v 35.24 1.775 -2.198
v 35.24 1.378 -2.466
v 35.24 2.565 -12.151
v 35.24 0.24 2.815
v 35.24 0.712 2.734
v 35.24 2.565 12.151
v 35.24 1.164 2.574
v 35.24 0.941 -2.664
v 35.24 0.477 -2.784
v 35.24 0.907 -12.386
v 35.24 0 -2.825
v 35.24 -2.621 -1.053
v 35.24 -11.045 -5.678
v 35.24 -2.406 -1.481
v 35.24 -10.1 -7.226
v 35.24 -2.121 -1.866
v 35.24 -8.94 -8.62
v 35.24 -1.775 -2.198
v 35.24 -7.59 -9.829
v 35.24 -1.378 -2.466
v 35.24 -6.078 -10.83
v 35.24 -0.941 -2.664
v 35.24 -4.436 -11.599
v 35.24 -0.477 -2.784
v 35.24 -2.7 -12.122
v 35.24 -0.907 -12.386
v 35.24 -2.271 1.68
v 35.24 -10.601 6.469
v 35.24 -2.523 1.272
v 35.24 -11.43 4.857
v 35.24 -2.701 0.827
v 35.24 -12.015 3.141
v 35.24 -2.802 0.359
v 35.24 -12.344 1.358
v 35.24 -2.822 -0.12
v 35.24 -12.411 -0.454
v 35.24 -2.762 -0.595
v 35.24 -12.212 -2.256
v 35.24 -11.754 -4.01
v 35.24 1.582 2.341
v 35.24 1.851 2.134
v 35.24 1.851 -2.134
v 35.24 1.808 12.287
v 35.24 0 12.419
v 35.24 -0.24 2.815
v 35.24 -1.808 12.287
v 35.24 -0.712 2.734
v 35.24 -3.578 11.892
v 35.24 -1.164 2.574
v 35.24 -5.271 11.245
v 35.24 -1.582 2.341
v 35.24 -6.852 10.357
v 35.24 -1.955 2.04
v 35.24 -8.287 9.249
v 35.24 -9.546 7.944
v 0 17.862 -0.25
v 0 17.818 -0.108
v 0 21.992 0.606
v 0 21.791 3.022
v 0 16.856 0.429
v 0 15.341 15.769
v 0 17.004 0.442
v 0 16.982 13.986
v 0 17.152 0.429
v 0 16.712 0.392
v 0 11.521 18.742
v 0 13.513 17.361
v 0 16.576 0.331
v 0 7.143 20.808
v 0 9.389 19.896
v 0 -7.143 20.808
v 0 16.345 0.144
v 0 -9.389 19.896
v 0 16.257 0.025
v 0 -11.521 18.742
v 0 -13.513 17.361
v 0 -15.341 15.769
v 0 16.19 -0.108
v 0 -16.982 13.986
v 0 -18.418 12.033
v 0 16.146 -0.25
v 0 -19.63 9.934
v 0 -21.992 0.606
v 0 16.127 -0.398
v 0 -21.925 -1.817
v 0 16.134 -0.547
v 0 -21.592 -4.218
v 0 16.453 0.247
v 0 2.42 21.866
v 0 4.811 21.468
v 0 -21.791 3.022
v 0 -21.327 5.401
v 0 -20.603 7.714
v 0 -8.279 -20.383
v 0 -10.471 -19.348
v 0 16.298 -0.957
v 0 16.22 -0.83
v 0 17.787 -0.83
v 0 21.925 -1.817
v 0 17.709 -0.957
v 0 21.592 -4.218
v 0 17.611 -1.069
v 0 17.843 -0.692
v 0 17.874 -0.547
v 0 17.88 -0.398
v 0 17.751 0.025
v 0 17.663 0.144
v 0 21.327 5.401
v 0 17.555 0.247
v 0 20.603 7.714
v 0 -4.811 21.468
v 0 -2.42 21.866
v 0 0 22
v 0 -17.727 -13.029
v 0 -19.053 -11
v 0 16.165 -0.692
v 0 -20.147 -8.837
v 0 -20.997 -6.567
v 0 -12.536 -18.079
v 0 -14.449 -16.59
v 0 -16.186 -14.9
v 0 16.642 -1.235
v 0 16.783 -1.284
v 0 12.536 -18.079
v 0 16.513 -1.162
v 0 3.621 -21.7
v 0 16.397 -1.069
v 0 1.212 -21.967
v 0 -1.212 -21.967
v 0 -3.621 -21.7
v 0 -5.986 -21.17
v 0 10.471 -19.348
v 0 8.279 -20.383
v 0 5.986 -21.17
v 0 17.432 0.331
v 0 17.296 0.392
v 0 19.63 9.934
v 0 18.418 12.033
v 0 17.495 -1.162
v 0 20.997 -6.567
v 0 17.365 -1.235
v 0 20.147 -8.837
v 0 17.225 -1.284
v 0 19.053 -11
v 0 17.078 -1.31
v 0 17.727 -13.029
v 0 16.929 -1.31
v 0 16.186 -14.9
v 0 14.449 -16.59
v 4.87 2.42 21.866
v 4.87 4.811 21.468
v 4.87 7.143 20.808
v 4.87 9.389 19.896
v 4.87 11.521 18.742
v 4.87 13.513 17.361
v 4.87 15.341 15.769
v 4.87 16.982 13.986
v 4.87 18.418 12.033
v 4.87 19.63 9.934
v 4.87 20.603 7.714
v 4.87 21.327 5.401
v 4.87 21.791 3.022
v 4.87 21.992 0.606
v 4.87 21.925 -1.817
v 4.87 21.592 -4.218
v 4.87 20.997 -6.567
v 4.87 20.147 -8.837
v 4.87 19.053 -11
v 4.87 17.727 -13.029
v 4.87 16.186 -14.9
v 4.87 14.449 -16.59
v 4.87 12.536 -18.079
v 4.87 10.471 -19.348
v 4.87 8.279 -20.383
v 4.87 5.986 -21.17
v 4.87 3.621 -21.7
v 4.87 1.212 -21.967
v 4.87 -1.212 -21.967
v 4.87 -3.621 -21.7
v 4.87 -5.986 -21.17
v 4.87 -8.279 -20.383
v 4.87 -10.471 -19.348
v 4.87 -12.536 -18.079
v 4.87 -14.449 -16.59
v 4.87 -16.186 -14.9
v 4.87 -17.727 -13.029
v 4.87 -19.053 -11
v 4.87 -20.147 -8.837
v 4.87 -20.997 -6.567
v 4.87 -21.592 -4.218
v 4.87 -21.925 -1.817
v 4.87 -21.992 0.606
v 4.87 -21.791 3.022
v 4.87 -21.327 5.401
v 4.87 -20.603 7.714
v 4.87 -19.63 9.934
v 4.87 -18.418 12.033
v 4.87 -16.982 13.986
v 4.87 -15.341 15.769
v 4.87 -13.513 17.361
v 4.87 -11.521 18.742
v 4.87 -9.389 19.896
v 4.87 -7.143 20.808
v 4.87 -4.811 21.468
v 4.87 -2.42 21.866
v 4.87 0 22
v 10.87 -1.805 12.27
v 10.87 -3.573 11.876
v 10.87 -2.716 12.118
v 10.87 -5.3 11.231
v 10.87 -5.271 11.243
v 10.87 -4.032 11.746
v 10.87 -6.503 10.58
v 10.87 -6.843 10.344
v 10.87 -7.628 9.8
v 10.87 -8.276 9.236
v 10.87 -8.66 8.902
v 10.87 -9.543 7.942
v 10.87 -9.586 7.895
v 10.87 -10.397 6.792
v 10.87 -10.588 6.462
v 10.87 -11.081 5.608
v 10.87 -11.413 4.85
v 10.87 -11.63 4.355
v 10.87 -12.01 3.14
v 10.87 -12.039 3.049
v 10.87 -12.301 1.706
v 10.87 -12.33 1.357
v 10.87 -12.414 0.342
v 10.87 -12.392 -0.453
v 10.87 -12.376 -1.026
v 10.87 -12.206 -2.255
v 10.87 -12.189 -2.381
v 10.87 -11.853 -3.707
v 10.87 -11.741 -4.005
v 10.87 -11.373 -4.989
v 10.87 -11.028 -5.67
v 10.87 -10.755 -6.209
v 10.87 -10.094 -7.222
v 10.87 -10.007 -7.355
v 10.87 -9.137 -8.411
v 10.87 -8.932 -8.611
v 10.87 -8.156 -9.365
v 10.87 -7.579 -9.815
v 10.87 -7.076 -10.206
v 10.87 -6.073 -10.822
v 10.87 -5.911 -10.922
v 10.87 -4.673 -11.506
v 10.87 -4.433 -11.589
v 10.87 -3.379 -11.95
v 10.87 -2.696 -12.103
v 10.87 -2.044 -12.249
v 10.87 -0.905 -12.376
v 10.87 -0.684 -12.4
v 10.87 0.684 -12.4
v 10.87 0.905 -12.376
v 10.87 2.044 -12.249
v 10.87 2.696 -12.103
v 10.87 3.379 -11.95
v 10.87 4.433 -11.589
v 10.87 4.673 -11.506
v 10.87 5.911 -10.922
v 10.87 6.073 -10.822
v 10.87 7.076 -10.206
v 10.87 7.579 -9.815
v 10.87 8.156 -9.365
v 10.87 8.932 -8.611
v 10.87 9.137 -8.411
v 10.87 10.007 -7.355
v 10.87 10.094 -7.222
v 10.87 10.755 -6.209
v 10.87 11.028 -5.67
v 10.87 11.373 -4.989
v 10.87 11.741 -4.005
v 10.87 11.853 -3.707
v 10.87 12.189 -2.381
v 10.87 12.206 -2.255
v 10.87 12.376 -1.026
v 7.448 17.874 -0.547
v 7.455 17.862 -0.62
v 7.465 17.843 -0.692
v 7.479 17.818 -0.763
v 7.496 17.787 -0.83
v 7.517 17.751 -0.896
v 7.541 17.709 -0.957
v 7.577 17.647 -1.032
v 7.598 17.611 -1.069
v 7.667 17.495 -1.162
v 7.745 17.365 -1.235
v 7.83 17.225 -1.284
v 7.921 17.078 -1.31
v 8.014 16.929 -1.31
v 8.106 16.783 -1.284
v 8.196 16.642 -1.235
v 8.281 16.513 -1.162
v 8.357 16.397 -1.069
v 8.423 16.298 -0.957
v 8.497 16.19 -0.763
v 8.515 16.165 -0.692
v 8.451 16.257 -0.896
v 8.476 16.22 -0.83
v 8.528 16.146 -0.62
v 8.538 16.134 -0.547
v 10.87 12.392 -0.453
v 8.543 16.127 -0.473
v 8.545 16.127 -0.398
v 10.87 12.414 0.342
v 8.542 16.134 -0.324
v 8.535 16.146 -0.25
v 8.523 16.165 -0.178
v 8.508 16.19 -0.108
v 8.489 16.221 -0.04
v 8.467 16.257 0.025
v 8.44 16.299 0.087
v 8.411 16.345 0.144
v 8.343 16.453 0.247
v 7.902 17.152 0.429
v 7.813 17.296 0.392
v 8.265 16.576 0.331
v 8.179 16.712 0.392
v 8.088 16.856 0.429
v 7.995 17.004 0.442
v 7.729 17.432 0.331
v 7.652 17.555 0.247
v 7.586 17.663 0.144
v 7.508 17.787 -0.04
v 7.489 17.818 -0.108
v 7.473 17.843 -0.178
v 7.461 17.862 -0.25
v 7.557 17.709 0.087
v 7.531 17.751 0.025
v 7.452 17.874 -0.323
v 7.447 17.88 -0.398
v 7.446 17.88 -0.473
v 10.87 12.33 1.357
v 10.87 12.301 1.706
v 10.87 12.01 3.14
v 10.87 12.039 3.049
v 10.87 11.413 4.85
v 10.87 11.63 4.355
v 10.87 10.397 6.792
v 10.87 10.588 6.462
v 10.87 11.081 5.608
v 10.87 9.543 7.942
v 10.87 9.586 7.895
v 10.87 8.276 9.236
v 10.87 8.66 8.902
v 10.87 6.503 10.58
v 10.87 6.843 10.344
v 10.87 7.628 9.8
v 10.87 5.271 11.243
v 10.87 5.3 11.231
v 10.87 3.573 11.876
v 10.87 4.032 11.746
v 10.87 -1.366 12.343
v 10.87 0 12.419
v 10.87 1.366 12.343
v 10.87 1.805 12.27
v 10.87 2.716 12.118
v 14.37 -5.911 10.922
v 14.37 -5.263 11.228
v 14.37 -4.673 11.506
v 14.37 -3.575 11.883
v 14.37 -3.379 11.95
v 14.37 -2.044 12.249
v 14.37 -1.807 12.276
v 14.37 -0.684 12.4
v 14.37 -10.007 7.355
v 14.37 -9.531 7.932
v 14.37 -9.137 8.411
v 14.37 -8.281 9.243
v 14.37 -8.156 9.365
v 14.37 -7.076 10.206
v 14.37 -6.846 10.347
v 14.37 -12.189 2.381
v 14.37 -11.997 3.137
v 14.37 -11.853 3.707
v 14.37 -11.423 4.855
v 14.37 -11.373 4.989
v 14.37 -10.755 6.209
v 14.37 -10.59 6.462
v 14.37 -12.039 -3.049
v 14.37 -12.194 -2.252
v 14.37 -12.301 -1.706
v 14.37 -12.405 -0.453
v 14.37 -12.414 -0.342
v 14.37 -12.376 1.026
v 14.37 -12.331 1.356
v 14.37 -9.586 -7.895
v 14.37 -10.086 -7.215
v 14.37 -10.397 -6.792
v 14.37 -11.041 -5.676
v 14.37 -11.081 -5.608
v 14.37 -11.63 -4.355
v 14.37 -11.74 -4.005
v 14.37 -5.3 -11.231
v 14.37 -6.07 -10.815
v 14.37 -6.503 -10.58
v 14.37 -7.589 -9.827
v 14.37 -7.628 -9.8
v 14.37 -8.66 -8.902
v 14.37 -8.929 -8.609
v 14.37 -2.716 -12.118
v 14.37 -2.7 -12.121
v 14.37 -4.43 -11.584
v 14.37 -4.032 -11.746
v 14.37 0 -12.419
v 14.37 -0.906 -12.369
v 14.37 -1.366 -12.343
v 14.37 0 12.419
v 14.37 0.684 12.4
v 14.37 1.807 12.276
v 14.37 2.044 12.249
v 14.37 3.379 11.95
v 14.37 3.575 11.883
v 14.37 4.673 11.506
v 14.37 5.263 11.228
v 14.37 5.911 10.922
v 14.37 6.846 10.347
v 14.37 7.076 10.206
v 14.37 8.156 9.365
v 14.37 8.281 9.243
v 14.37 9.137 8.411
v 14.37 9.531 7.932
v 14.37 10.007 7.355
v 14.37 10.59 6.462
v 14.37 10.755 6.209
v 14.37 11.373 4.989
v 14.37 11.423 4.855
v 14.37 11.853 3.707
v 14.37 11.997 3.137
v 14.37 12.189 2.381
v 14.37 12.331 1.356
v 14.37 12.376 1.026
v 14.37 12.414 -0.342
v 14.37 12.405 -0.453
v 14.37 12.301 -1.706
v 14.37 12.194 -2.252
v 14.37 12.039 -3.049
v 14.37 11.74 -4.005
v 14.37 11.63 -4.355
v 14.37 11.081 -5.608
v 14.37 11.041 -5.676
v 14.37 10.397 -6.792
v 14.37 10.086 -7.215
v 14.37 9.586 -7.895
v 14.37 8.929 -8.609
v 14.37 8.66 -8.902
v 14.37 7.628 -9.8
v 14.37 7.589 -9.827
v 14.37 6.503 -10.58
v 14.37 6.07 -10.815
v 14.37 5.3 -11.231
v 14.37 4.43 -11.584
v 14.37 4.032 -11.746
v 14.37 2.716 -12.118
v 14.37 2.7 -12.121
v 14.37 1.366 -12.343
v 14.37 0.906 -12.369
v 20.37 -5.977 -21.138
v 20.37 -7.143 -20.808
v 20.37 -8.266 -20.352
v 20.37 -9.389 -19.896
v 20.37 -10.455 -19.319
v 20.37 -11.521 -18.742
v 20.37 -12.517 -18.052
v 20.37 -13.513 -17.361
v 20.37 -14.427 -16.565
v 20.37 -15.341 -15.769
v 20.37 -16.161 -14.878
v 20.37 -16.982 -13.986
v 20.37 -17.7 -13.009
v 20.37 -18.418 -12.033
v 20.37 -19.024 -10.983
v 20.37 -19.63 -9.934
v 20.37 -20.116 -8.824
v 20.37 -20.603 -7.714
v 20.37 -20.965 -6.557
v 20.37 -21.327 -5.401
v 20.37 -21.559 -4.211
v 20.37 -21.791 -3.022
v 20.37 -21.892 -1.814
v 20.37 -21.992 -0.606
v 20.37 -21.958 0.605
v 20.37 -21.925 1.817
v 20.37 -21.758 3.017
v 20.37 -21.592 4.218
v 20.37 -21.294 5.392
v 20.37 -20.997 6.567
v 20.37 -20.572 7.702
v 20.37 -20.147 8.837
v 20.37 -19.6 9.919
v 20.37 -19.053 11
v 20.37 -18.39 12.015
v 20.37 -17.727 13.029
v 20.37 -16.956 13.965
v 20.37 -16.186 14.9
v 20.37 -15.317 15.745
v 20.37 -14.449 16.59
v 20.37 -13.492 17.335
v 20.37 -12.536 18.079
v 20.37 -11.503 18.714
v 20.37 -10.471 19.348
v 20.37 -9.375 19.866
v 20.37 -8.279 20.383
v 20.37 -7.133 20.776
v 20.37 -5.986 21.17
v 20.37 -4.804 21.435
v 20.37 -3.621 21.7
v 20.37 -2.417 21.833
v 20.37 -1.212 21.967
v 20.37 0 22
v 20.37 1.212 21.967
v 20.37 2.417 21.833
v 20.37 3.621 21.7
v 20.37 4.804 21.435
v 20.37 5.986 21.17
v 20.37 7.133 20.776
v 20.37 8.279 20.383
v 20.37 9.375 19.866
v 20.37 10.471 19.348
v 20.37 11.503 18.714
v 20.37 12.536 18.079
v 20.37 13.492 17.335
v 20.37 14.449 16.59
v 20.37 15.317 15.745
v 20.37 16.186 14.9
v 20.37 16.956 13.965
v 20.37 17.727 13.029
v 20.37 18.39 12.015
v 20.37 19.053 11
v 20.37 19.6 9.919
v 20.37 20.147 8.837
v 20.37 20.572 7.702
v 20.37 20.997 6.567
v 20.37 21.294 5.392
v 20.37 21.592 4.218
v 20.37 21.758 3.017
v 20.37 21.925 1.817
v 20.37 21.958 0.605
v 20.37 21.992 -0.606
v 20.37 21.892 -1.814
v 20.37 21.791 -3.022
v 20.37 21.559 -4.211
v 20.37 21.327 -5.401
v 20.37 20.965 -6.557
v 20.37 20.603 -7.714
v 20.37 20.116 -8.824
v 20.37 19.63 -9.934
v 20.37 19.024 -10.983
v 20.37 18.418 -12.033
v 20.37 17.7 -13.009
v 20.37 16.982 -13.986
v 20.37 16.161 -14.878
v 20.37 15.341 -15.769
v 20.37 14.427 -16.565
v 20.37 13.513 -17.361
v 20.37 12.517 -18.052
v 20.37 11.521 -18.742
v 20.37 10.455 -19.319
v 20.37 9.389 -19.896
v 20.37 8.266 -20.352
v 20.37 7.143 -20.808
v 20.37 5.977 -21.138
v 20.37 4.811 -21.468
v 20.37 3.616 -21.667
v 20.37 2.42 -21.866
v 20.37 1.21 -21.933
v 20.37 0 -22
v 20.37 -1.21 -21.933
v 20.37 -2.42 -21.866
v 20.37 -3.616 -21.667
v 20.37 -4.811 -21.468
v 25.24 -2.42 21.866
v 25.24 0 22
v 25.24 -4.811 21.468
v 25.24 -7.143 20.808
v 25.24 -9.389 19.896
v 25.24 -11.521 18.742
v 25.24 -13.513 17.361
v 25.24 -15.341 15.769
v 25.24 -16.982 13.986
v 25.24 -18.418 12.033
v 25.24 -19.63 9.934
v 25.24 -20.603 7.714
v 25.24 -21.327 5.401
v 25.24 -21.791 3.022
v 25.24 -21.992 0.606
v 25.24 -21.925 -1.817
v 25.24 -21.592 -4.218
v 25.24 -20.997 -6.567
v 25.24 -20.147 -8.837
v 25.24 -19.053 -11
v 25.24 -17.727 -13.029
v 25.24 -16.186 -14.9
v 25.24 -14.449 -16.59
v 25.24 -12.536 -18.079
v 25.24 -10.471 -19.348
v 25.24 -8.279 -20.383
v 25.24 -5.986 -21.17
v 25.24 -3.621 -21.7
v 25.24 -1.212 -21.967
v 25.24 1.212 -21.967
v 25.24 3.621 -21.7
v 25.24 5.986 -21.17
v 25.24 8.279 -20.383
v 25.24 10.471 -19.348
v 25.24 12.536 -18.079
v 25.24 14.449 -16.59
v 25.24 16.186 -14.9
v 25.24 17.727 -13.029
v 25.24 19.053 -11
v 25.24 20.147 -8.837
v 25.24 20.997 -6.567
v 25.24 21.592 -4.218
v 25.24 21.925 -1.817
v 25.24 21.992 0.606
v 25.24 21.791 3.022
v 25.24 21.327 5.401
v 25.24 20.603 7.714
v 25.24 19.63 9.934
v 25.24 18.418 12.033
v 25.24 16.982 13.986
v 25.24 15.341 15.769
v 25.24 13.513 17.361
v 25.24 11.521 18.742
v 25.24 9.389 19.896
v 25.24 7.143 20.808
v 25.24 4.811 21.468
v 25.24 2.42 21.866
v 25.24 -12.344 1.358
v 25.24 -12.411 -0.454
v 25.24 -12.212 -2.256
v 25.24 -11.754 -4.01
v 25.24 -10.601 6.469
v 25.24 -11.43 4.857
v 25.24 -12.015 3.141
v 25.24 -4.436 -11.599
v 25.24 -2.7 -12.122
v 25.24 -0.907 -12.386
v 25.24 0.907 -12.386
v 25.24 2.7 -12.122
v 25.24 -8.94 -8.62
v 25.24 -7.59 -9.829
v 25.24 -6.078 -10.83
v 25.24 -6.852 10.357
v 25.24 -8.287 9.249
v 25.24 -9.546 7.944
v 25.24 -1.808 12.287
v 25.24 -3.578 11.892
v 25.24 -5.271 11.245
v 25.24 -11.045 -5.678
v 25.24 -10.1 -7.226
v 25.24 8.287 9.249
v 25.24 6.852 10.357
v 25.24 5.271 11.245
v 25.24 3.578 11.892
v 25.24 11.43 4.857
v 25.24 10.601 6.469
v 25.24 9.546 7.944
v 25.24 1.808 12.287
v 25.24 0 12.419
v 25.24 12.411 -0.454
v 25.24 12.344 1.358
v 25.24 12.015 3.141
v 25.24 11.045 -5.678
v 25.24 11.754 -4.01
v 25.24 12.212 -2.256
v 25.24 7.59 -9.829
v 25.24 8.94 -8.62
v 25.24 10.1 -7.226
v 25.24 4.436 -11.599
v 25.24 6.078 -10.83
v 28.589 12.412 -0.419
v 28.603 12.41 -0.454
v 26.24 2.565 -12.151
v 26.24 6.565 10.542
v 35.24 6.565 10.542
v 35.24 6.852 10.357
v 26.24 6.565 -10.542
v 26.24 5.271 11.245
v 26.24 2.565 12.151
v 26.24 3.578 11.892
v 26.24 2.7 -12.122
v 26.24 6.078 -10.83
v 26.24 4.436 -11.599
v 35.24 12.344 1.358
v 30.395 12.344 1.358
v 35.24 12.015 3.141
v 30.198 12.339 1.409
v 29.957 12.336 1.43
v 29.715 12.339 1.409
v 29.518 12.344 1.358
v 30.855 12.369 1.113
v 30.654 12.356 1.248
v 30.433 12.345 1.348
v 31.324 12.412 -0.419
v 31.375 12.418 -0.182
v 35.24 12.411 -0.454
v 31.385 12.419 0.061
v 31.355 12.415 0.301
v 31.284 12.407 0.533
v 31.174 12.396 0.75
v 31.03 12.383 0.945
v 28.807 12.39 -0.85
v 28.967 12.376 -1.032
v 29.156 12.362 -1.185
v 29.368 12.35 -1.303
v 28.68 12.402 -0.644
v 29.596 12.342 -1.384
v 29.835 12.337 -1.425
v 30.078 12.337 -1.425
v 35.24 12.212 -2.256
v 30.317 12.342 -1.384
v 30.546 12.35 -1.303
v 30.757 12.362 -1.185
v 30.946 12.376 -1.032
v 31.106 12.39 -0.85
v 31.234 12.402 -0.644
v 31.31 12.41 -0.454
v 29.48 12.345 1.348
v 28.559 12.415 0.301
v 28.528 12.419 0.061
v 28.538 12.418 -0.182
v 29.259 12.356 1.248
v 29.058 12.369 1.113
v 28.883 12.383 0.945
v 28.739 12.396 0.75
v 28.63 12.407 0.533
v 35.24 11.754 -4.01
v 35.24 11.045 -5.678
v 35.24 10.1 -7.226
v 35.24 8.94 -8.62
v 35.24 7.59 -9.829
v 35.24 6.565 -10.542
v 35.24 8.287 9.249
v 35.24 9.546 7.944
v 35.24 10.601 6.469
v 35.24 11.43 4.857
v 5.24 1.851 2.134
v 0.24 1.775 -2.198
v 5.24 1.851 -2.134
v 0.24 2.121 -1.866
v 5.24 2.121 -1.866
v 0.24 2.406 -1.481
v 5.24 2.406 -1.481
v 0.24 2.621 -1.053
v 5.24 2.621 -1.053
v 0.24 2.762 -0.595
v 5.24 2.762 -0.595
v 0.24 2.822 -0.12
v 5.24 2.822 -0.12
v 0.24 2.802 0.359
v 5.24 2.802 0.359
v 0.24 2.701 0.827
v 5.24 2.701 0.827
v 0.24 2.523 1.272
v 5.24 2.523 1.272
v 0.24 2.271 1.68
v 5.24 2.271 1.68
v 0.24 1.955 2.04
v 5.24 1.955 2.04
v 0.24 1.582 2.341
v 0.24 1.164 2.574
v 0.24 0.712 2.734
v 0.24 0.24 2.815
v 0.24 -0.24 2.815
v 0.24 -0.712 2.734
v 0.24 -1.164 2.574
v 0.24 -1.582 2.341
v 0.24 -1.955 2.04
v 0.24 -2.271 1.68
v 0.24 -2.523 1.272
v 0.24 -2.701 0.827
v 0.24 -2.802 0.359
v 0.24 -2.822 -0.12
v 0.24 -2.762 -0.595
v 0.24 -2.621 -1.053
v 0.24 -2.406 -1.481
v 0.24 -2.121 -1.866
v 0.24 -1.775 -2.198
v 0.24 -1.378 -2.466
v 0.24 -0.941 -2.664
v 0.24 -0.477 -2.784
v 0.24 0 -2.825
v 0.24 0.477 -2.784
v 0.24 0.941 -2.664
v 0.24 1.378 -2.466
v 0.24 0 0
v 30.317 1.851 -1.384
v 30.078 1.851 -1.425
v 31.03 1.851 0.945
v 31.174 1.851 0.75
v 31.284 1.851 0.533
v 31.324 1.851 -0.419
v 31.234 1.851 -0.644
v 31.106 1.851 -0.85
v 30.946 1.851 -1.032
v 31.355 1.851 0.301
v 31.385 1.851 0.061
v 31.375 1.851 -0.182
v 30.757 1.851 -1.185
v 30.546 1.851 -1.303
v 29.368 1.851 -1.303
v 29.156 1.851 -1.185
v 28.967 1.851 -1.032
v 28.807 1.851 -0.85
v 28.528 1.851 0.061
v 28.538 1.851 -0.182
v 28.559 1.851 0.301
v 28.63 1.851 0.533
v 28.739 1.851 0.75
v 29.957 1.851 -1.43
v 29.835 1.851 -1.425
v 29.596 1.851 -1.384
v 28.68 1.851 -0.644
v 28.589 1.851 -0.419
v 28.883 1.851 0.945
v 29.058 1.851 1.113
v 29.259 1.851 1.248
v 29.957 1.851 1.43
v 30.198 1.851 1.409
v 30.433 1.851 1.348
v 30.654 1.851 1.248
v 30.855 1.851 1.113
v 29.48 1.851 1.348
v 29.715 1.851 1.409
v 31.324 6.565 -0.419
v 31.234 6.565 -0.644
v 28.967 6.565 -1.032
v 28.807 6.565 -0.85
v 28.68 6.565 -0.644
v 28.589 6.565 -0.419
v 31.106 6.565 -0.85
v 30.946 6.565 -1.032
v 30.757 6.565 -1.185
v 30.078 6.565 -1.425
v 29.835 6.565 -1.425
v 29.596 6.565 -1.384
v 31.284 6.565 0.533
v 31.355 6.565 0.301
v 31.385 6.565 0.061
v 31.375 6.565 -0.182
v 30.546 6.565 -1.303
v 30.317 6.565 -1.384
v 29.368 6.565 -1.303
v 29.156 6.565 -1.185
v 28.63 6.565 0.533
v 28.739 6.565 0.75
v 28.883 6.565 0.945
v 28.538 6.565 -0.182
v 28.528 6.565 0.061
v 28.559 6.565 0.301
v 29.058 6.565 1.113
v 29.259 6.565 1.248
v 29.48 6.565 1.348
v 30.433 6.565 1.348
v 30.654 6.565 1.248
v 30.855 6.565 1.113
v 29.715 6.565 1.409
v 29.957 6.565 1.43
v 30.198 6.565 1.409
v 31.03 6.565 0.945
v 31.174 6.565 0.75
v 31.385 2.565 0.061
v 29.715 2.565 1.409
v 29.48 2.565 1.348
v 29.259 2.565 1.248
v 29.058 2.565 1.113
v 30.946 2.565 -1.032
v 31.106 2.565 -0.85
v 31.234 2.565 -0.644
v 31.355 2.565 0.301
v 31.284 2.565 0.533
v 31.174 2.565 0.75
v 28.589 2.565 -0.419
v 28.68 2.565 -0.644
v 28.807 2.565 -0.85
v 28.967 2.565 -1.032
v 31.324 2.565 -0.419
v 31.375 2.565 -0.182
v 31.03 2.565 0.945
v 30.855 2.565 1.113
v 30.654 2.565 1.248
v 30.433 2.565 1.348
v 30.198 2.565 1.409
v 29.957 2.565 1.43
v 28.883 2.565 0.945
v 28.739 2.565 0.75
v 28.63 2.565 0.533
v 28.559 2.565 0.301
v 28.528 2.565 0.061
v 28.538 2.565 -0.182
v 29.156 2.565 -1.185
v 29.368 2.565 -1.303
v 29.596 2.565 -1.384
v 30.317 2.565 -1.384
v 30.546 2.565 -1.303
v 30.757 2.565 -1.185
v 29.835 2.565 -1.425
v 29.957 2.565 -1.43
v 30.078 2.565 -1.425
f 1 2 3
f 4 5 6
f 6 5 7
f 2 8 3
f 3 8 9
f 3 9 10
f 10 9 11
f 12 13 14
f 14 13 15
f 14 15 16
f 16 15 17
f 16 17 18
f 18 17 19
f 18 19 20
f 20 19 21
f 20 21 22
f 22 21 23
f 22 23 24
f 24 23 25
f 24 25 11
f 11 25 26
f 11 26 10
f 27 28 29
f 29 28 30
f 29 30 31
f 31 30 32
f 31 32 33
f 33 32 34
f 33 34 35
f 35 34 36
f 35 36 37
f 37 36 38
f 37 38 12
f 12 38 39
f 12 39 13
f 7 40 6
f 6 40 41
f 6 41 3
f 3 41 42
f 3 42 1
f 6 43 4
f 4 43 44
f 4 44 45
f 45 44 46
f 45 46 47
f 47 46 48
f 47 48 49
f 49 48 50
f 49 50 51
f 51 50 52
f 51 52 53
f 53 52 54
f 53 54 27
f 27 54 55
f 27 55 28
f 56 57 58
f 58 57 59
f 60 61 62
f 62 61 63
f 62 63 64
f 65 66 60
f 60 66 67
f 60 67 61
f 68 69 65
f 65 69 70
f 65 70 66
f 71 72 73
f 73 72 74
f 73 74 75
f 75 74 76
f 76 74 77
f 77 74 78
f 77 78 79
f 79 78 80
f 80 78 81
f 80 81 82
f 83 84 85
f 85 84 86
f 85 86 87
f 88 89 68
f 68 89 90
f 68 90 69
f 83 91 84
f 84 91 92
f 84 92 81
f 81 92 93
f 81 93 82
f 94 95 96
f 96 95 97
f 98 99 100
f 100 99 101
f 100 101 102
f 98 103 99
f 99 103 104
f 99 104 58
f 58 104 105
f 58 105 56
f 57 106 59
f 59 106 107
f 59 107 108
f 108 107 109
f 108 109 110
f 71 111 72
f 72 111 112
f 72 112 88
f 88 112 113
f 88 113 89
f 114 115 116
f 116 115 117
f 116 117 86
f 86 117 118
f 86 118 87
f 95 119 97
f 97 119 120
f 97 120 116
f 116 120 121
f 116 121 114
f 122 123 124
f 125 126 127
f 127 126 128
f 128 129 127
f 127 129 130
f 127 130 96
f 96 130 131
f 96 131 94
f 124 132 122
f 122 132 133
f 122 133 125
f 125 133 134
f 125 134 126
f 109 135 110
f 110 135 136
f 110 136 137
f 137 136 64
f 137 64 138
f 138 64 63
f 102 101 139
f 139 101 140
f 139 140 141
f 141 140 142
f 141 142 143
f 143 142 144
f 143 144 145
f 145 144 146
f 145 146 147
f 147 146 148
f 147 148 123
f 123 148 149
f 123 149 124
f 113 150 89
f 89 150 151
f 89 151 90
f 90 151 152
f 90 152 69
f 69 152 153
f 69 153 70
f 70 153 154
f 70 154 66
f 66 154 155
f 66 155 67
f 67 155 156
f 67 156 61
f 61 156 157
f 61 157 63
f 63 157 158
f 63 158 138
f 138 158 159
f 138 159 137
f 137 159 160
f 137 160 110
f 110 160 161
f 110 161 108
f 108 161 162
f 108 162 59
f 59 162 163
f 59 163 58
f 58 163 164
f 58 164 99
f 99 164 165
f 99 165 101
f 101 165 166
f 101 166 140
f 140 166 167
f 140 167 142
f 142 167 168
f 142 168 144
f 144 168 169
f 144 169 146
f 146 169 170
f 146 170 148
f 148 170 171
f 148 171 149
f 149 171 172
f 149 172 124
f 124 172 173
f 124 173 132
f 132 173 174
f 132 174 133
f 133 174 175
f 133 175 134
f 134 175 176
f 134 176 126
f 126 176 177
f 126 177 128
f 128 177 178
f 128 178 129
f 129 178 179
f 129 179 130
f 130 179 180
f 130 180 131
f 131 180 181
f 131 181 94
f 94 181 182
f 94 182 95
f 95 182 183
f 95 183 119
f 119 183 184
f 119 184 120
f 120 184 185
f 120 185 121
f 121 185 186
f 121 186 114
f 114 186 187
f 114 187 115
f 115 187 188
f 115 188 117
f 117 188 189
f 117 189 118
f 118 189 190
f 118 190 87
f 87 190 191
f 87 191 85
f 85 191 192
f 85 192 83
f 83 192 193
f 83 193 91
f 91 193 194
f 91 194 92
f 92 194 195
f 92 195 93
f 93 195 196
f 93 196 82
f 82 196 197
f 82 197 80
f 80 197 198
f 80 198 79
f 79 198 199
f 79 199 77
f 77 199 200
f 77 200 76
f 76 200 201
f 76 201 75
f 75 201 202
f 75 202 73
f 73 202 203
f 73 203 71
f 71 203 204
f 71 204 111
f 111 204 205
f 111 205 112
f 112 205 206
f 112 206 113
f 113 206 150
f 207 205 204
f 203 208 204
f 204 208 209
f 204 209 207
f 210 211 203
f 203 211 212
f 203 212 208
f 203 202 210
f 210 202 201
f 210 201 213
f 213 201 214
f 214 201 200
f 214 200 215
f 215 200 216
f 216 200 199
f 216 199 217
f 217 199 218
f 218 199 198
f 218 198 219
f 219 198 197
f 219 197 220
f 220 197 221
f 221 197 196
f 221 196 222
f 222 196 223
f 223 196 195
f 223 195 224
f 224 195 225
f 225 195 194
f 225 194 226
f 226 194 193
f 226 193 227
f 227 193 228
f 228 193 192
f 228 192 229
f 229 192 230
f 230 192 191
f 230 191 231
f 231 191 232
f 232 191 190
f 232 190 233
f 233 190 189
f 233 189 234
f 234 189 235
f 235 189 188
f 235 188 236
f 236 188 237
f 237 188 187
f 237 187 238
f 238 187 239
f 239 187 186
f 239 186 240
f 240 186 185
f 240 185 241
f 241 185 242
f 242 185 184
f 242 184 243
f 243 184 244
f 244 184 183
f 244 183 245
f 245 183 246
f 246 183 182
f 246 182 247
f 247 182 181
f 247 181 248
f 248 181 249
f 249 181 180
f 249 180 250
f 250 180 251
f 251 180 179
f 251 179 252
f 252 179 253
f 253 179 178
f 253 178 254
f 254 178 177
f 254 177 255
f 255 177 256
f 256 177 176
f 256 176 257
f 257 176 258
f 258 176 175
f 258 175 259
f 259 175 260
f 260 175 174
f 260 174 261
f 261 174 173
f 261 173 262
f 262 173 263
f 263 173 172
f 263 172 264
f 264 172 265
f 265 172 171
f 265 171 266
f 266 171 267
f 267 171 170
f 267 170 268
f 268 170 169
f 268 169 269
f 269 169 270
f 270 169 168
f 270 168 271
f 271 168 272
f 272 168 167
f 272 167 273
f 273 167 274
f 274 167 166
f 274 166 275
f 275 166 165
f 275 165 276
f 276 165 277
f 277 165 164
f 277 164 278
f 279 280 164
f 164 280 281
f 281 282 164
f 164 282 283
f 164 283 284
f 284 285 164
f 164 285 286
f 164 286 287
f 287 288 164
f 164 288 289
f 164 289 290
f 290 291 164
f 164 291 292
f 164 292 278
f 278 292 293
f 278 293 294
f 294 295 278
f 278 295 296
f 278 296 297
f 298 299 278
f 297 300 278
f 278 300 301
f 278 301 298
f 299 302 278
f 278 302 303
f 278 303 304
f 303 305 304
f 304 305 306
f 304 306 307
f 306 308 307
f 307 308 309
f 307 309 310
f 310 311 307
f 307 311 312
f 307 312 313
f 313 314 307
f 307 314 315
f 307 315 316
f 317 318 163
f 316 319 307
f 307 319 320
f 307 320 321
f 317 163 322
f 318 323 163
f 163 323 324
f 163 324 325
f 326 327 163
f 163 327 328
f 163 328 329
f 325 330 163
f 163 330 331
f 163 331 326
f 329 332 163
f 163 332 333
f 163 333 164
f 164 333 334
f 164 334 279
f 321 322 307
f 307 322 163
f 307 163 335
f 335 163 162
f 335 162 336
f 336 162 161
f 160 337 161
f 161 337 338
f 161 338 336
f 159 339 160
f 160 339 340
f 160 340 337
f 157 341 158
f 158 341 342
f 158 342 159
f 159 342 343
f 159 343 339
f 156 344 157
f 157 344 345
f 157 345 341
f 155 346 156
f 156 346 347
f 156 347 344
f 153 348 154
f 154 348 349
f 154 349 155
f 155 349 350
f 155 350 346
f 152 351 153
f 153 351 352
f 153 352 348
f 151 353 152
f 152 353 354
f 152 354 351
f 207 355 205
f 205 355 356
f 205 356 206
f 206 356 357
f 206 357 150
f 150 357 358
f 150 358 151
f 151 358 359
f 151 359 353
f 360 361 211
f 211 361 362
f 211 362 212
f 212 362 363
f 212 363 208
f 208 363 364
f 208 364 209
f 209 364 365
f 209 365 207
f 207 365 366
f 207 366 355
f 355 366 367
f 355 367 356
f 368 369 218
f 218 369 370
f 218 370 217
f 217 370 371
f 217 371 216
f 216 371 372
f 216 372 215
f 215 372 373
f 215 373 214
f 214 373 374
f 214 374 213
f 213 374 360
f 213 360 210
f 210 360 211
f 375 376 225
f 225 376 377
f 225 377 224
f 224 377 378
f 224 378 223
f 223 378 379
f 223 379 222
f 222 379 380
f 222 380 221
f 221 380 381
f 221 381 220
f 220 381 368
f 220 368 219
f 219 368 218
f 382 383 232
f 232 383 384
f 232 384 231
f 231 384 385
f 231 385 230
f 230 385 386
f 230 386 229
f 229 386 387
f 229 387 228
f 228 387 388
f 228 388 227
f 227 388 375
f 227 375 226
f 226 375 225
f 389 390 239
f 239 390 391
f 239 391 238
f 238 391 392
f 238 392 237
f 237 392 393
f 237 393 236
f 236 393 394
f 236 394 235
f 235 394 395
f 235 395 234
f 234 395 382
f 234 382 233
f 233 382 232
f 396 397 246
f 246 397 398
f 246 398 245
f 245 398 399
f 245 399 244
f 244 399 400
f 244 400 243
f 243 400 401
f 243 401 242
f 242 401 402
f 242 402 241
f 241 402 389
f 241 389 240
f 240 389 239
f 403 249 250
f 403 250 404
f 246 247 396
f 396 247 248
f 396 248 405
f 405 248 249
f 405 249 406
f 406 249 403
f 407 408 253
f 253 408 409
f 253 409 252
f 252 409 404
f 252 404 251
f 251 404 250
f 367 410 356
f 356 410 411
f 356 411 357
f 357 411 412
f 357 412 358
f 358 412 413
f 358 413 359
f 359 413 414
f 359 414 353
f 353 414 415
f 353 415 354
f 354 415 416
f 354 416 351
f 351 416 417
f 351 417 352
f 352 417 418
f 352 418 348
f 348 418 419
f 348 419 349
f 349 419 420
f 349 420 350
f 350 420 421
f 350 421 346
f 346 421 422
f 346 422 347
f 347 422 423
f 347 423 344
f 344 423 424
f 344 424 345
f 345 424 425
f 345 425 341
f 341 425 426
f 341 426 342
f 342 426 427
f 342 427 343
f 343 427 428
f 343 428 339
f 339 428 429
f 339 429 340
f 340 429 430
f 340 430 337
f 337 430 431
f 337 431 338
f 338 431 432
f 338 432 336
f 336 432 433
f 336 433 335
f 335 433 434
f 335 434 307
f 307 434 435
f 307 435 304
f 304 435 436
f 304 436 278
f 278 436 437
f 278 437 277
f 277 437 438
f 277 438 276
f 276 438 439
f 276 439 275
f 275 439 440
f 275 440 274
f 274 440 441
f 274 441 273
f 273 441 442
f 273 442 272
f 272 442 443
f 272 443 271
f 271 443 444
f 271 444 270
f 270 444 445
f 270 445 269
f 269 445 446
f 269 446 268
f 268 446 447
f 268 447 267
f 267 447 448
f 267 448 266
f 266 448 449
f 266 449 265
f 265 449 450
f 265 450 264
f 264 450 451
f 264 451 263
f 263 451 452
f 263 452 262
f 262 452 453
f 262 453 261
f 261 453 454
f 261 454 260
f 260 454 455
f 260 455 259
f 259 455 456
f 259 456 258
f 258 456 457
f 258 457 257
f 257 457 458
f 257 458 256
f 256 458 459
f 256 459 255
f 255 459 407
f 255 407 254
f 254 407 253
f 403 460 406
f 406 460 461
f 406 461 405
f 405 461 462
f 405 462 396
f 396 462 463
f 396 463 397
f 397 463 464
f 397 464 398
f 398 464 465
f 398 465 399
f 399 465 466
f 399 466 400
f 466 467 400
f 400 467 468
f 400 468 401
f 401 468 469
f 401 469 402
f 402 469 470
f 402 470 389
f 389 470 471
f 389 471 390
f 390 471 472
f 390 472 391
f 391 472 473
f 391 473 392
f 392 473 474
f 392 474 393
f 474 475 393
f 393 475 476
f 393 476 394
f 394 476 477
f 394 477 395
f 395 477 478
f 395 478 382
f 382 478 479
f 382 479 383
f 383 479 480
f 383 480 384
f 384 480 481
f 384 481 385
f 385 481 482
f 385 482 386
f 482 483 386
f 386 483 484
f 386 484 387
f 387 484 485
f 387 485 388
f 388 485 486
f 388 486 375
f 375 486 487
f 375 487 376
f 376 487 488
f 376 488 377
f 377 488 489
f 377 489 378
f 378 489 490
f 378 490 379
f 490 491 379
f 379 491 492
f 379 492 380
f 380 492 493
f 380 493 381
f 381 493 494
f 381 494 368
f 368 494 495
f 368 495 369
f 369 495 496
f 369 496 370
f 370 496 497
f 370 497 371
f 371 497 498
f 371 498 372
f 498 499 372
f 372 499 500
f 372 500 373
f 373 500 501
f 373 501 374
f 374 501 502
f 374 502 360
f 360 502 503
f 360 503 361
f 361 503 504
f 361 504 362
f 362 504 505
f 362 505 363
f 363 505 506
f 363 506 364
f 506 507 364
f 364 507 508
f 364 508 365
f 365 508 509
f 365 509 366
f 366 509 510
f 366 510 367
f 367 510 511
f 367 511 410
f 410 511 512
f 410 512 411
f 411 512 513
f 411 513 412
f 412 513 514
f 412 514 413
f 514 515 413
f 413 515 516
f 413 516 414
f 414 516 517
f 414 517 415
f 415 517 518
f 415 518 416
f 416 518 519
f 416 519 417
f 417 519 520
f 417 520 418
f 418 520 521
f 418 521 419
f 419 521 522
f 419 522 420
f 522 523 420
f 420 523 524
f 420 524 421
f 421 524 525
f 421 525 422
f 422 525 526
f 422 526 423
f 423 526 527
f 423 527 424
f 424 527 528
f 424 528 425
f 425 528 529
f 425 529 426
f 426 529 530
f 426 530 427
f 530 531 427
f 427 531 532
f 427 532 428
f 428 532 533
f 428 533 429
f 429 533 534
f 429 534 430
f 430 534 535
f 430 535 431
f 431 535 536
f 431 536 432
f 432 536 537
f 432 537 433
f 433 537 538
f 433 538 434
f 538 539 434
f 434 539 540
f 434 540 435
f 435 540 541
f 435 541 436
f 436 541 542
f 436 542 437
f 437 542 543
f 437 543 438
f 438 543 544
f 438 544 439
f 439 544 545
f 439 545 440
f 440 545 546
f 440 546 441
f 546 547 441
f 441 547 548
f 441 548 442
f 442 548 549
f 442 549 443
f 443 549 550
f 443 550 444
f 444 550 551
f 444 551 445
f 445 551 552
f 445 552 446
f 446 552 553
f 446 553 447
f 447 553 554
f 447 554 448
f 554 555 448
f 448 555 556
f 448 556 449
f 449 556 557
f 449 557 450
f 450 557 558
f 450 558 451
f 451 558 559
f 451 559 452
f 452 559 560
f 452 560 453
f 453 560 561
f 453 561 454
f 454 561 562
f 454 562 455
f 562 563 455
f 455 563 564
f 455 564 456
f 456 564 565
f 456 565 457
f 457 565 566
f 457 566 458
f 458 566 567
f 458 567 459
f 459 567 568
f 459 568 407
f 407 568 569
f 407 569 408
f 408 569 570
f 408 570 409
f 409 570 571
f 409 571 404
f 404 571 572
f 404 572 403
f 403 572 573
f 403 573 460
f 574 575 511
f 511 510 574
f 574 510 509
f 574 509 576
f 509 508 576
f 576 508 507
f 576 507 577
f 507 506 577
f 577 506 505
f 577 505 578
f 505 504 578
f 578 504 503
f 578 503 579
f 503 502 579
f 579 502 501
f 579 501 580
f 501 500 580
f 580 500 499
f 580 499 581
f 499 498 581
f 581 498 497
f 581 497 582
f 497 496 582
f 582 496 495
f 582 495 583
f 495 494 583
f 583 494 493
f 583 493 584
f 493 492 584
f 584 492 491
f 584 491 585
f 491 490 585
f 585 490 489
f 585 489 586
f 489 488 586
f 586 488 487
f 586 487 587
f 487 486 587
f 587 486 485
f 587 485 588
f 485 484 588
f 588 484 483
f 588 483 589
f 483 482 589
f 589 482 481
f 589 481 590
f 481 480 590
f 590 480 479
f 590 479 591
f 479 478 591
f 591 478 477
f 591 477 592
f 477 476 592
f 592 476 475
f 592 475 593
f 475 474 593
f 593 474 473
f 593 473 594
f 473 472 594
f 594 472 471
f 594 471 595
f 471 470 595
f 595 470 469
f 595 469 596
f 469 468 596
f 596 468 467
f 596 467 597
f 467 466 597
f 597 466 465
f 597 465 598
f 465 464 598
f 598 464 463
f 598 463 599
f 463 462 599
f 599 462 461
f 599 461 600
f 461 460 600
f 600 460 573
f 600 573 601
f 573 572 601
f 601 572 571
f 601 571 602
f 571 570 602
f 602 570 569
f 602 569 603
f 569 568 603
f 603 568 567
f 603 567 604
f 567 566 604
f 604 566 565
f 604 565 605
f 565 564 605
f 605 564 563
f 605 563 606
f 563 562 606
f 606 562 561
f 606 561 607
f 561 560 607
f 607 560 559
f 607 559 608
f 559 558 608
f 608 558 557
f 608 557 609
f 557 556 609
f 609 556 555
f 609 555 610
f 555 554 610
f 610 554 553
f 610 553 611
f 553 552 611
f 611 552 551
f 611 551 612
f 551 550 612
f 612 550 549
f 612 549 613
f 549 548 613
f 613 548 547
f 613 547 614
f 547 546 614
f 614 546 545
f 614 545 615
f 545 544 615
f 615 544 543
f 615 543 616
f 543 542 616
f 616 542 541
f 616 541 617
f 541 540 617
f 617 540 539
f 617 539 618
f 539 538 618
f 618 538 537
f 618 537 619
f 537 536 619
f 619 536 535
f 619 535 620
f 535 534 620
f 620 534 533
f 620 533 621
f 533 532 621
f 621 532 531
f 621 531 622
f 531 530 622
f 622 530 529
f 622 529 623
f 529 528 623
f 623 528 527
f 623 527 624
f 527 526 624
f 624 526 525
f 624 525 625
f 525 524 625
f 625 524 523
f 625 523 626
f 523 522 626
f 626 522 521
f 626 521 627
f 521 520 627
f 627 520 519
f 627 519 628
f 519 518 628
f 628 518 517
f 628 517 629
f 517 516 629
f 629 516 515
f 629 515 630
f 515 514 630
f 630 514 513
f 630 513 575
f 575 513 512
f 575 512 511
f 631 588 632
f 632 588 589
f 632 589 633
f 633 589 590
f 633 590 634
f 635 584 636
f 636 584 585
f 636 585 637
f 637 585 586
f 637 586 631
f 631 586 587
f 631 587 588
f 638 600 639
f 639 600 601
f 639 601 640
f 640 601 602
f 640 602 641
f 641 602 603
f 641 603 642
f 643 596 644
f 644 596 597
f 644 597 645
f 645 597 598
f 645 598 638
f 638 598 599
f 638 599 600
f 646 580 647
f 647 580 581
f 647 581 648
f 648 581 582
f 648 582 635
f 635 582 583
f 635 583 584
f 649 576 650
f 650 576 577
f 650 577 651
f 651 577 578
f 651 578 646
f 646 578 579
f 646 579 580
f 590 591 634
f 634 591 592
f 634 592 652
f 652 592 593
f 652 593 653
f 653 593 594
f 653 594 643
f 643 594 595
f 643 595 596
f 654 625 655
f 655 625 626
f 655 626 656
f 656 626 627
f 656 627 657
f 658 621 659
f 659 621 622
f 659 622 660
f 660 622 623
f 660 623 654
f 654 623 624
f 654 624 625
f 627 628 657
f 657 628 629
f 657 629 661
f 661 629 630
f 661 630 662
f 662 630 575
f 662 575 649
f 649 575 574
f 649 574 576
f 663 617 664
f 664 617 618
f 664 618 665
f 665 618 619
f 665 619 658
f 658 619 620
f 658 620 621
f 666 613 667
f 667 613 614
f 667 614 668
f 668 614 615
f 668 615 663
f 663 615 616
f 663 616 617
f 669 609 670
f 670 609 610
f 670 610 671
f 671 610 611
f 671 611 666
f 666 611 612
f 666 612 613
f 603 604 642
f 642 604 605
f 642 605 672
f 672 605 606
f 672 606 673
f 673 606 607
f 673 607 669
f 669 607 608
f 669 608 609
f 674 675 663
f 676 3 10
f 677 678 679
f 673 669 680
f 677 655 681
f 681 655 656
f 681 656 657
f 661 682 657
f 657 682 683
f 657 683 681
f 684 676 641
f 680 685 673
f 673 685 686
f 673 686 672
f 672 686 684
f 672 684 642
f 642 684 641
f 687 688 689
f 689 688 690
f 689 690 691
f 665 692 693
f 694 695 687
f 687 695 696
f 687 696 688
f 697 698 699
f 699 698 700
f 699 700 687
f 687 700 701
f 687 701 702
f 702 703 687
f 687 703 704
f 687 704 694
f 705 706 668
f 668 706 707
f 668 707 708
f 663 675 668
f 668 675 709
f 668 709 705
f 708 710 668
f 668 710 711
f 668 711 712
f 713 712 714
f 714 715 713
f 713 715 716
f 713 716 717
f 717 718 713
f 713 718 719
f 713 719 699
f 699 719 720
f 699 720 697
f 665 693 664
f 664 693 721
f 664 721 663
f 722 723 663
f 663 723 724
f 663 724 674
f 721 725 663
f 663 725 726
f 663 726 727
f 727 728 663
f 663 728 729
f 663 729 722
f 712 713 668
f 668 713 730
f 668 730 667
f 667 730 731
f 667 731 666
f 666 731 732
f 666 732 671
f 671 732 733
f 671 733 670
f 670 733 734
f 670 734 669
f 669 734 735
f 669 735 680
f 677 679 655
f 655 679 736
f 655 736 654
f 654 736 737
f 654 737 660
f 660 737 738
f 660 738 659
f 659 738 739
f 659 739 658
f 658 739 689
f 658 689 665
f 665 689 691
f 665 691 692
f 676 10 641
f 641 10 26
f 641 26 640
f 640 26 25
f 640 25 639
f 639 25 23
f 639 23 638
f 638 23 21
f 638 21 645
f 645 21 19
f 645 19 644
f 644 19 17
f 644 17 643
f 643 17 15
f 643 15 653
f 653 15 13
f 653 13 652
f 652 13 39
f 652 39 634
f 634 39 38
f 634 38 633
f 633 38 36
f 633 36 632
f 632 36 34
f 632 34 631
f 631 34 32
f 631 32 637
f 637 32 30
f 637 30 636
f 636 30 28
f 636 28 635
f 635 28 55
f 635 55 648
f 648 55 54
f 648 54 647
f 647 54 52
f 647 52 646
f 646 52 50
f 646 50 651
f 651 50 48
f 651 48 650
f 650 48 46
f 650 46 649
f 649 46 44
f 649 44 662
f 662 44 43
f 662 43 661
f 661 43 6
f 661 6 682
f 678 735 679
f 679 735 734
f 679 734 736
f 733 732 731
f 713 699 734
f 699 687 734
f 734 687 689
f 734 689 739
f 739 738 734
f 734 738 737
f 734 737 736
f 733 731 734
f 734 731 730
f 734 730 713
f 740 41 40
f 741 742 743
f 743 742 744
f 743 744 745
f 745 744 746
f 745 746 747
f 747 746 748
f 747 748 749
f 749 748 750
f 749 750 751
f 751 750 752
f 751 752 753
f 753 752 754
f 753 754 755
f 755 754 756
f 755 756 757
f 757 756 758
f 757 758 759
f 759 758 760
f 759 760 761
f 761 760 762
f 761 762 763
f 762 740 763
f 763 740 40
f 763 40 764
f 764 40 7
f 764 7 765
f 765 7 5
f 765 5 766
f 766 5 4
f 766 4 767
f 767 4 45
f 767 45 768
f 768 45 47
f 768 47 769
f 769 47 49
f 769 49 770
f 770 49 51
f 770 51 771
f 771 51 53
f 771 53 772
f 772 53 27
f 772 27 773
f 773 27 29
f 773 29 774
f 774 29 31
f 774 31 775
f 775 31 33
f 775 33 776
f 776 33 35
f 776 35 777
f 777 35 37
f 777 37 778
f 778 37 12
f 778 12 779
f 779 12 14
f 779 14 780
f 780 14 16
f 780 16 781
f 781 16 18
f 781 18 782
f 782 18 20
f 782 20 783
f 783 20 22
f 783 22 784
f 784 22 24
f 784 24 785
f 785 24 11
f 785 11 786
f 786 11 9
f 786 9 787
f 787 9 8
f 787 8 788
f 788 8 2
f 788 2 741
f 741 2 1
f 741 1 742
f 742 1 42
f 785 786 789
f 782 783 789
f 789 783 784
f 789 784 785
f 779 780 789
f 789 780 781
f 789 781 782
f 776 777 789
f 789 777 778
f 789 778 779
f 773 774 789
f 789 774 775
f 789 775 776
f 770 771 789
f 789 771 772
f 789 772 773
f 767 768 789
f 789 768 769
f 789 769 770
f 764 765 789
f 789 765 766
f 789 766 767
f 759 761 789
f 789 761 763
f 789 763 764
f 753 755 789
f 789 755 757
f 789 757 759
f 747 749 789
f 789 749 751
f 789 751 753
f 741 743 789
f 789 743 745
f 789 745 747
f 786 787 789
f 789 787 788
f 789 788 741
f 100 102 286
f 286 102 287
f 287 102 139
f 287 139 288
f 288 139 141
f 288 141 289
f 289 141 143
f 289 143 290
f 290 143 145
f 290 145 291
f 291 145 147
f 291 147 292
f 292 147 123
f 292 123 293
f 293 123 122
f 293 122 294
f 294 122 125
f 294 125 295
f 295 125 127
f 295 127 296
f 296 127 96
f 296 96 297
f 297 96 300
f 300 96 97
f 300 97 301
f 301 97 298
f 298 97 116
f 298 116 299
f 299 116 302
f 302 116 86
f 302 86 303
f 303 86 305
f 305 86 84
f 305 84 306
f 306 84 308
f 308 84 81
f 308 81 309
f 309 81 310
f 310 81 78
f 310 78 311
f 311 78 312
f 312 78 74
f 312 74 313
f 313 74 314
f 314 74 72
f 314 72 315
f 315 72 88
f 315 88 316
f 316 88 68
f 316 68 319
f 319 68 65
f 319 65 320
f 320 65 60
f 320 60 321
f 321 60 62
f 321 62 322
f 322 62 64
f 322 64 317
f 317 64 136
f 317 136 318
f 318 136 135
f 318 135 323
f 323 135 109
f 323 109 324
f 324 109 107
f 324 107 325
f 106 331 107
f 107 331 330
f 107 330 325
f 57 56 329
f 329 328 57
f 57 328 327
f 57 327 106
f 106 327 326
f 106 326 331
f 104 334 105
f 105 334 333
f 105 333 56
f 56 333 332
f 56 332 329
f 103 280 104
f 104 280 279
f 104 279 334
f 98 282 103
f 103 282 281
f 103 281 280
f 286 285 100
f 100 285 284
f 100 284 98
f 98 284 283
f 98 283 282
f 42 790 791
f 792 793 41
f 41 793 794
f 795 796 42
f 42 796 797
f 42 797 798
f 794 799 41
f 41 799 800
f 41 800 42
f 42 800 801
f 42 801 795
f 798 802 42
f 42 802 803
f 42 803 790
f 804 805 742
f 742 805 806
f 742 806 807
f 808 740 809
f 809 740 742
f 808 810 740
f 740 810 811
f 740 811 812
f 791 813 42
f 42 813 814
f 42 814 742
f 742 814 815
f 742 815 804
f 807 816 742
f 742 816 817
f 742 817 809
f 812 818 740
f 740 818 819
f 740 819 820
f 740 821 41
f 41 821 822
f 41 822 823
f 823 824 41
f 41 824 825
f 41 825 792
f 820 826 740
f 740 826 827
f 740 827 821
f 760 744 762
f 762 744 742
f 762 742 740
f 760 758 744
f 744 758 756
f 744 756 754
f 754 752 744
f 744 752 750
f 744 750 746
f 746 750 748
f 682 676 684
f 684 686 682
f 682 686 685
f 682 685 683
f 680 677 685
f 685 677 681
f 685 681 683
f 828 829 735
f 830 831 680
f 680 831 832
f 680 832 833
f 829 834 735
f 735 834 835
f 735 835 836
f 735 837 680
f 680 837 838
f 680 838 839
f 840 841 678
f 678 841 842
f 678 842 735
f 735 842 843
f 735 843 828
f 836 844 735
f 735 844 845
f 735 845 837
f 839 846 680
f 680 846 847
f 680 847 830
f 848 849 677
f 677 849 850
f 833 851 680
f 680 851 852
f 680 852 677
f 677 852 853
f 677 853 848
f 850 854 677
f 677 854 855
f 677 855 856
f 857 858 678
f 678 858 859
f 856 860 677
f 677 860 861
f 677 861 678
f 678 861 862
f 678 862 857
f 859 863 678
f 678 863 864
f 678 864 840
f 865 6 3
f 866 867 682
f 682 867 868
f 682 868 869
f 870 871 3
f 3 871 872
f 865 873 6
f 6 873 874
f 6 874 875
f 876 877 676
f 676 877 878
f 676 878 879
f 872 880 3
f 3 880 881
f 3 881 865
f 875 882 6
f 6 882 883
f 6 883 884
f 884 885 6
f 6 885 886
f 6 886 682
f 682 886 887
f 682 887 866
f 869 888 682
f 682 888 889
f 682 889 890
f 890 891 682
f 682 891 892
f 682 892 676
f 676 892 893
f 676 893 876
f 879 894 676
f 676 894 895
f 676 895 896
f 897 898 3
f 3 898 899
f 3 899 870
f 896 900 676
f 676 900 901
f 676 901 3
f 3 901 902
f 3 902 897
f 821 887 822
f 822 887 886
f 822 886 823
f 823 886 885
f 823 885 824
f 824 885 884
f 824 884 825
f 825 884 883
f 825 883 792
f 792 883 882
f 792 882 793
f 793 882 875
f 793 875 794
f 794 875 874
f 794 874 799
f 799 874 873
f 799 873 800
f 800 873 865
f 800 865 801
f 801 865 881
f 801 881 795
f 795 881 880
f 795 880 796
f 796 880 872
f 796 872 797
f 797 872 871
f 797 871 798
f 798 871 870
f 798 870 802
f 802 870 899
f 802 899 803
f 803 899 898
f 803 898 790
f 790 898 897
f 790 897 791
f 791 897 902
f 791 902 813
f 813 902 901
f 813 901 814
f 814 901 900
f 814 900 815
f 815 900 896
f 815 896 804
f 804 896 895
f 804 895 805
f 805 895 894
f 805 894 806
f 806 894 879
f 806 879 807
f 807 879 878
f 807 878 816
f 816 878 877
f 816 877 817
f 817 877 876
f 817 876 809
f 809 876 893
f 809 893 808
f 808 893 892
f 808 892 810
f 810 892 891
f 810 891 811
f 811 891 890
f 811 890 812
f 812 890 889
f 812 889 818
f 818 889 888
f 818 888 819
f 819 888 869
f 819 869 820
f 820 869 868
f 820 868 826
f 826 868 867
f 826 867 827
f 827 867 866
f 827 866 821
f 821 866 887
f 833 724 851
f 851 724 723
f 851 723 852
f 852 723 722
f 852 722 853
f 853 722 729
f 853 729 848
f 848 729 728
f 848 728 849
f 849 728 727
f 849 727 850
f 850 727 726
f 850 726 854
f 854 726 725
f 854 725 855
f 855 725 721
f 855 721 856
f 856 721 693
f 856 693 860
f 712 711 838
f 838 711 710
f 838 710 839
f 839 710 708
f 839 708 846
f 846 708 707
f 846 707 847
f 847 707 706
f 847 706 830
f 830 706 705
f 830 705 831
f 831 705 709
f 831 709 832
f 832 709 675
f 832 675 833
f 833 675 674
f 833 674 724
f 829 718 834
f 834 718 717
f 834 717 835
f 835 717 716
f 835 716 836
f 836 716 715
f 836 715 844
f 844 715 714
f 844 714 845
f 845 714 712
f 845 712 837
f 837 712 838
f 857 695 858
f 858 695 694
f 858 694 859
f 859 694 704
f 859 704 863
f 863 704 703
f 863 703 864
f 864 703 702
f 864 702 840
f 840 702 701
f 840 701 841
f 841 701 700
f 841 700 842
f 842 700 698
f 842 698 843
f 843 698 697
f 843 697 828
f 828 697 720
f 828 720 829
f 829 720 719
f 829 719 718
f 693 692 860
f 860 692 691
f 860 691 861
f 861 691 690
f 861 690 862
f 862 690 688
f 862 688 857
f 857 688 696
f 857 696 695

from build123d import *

# Parameters (mm, degrees)
SKETCH_3_R          = 2.825
CUT_EXTRUDE_2_DEPTH = 35
SKETCH_14_R         = 0.877374271
CUT_EXTRUDE_5_DEPTH = 12
SKETCH_16_W         = 5.008881277
SKETCH_16_H         = 1
EXTRUDE_2_DEPTH     = 30
SKETCH_19_W         = 0.959066555
SKETCH_19_H         = 0.511502163
EXTRUDE_3_DEPTH     = 30
SKETCH_24_W         = 24.30212029
SKETCH_24_H         = 4
CUT_EXTRUDE_8_DEPTH = 9
SKETCH_25_R         = 1.43
CUT_EXTRUDE_9_DEPTH = 22


with BuildPart() as part:
    # 草圖1 → 旋轉1 (revolve)
    with BuildSketch(Plane.XY):
        Polygon((0, 0), (0, 22), (4.87, 22), (10.87, 12.418858447), (14.37, 12.418858447), (20.37, 22), (25.24, 22), (25.24, 12.418858447), (35.24, 12.418858447), (35.24, 0), align=None)
    revolve(axis=Axis((-743.15639781, 0, 0), (1, 0, 0)))

    # 草圖3 → 除料-伸長2 (cut)
    with BuildSketch(Plane(origin=(35.24, 0, 0), x_dir=(0, 0, -1), z_dir=(1, 0, 0))):
        Circle(SKETCH_3_R)
    extrude(amount=-CUT_EXTRUDE_2_DEPTH, mode=Mode.SUBTRACT)

    # 草圖14 → 除料-伸長5 (cut)
    with BuildSketch(Plane.ZY):
        with Locations((-0.435299539, 17.00388826)):
            Circle(SKETCH_14_R)
    extrude(amount=-CUT_EXTRUDE_5_DEPTH, mode=Mode.SUBTRACT)

    # 草圖16 → 填料-伸長2 (add)
    with BuildSketch(Plane(origin=(35.24, 0, 0), x_dir=(0, 0, -1), z_dir=(1, 0, 0))):
        with Locations((-0.105543204, 2.350977924)):
            Rectangle(SKETCH_16_W, SKETCH_16_H)
    extrude(amount=-EXTRUDE_2_DEPTH)

    # 草圖19 → 填料-伸長3 (add)
    with BuildSketch(Plane(origin=(35.24, 0, 0), x_dir=(0, 0, -1), z_dir=(1, 0, 0))):
        with Locations((-0.084116996, 2.673942601)):
            Rectangle(SKETCH_19_W, SKETCH_19_H)
    extrude(amount=-EXTRUDE_3_DEPTH)

    # 草圖24 → 除料-伸長8 (cut)
    with BuildSketch(Plane(origin=(35.24, 0, 0), x_dir=(0, 0, -1), z_dir=(1, 0, 0))):
        with Locations((0, 4.565108671)):
            Rectangle(SKETCH_24_W, SKETCH_24_H)
    extrude(amount=-CUT_EXTRUDE_8_DEPTH, mode=Mode.SUBTRACT)

    # 草圖25 → 除料-伸長9 (cut)
    with BuildSketch(Plane(origin=(0, 22, 0), x_dir=(1, 0, 0), z_dir=(0, 1, 0))):
        with Locations((29.956679037, 0)):
            Circle(SKETCH_25_R)
    extrude(amount=-CUT_EXTRUDE_9_DEPTH, mode=Mode.SUBTRACT)


solid = part.part
